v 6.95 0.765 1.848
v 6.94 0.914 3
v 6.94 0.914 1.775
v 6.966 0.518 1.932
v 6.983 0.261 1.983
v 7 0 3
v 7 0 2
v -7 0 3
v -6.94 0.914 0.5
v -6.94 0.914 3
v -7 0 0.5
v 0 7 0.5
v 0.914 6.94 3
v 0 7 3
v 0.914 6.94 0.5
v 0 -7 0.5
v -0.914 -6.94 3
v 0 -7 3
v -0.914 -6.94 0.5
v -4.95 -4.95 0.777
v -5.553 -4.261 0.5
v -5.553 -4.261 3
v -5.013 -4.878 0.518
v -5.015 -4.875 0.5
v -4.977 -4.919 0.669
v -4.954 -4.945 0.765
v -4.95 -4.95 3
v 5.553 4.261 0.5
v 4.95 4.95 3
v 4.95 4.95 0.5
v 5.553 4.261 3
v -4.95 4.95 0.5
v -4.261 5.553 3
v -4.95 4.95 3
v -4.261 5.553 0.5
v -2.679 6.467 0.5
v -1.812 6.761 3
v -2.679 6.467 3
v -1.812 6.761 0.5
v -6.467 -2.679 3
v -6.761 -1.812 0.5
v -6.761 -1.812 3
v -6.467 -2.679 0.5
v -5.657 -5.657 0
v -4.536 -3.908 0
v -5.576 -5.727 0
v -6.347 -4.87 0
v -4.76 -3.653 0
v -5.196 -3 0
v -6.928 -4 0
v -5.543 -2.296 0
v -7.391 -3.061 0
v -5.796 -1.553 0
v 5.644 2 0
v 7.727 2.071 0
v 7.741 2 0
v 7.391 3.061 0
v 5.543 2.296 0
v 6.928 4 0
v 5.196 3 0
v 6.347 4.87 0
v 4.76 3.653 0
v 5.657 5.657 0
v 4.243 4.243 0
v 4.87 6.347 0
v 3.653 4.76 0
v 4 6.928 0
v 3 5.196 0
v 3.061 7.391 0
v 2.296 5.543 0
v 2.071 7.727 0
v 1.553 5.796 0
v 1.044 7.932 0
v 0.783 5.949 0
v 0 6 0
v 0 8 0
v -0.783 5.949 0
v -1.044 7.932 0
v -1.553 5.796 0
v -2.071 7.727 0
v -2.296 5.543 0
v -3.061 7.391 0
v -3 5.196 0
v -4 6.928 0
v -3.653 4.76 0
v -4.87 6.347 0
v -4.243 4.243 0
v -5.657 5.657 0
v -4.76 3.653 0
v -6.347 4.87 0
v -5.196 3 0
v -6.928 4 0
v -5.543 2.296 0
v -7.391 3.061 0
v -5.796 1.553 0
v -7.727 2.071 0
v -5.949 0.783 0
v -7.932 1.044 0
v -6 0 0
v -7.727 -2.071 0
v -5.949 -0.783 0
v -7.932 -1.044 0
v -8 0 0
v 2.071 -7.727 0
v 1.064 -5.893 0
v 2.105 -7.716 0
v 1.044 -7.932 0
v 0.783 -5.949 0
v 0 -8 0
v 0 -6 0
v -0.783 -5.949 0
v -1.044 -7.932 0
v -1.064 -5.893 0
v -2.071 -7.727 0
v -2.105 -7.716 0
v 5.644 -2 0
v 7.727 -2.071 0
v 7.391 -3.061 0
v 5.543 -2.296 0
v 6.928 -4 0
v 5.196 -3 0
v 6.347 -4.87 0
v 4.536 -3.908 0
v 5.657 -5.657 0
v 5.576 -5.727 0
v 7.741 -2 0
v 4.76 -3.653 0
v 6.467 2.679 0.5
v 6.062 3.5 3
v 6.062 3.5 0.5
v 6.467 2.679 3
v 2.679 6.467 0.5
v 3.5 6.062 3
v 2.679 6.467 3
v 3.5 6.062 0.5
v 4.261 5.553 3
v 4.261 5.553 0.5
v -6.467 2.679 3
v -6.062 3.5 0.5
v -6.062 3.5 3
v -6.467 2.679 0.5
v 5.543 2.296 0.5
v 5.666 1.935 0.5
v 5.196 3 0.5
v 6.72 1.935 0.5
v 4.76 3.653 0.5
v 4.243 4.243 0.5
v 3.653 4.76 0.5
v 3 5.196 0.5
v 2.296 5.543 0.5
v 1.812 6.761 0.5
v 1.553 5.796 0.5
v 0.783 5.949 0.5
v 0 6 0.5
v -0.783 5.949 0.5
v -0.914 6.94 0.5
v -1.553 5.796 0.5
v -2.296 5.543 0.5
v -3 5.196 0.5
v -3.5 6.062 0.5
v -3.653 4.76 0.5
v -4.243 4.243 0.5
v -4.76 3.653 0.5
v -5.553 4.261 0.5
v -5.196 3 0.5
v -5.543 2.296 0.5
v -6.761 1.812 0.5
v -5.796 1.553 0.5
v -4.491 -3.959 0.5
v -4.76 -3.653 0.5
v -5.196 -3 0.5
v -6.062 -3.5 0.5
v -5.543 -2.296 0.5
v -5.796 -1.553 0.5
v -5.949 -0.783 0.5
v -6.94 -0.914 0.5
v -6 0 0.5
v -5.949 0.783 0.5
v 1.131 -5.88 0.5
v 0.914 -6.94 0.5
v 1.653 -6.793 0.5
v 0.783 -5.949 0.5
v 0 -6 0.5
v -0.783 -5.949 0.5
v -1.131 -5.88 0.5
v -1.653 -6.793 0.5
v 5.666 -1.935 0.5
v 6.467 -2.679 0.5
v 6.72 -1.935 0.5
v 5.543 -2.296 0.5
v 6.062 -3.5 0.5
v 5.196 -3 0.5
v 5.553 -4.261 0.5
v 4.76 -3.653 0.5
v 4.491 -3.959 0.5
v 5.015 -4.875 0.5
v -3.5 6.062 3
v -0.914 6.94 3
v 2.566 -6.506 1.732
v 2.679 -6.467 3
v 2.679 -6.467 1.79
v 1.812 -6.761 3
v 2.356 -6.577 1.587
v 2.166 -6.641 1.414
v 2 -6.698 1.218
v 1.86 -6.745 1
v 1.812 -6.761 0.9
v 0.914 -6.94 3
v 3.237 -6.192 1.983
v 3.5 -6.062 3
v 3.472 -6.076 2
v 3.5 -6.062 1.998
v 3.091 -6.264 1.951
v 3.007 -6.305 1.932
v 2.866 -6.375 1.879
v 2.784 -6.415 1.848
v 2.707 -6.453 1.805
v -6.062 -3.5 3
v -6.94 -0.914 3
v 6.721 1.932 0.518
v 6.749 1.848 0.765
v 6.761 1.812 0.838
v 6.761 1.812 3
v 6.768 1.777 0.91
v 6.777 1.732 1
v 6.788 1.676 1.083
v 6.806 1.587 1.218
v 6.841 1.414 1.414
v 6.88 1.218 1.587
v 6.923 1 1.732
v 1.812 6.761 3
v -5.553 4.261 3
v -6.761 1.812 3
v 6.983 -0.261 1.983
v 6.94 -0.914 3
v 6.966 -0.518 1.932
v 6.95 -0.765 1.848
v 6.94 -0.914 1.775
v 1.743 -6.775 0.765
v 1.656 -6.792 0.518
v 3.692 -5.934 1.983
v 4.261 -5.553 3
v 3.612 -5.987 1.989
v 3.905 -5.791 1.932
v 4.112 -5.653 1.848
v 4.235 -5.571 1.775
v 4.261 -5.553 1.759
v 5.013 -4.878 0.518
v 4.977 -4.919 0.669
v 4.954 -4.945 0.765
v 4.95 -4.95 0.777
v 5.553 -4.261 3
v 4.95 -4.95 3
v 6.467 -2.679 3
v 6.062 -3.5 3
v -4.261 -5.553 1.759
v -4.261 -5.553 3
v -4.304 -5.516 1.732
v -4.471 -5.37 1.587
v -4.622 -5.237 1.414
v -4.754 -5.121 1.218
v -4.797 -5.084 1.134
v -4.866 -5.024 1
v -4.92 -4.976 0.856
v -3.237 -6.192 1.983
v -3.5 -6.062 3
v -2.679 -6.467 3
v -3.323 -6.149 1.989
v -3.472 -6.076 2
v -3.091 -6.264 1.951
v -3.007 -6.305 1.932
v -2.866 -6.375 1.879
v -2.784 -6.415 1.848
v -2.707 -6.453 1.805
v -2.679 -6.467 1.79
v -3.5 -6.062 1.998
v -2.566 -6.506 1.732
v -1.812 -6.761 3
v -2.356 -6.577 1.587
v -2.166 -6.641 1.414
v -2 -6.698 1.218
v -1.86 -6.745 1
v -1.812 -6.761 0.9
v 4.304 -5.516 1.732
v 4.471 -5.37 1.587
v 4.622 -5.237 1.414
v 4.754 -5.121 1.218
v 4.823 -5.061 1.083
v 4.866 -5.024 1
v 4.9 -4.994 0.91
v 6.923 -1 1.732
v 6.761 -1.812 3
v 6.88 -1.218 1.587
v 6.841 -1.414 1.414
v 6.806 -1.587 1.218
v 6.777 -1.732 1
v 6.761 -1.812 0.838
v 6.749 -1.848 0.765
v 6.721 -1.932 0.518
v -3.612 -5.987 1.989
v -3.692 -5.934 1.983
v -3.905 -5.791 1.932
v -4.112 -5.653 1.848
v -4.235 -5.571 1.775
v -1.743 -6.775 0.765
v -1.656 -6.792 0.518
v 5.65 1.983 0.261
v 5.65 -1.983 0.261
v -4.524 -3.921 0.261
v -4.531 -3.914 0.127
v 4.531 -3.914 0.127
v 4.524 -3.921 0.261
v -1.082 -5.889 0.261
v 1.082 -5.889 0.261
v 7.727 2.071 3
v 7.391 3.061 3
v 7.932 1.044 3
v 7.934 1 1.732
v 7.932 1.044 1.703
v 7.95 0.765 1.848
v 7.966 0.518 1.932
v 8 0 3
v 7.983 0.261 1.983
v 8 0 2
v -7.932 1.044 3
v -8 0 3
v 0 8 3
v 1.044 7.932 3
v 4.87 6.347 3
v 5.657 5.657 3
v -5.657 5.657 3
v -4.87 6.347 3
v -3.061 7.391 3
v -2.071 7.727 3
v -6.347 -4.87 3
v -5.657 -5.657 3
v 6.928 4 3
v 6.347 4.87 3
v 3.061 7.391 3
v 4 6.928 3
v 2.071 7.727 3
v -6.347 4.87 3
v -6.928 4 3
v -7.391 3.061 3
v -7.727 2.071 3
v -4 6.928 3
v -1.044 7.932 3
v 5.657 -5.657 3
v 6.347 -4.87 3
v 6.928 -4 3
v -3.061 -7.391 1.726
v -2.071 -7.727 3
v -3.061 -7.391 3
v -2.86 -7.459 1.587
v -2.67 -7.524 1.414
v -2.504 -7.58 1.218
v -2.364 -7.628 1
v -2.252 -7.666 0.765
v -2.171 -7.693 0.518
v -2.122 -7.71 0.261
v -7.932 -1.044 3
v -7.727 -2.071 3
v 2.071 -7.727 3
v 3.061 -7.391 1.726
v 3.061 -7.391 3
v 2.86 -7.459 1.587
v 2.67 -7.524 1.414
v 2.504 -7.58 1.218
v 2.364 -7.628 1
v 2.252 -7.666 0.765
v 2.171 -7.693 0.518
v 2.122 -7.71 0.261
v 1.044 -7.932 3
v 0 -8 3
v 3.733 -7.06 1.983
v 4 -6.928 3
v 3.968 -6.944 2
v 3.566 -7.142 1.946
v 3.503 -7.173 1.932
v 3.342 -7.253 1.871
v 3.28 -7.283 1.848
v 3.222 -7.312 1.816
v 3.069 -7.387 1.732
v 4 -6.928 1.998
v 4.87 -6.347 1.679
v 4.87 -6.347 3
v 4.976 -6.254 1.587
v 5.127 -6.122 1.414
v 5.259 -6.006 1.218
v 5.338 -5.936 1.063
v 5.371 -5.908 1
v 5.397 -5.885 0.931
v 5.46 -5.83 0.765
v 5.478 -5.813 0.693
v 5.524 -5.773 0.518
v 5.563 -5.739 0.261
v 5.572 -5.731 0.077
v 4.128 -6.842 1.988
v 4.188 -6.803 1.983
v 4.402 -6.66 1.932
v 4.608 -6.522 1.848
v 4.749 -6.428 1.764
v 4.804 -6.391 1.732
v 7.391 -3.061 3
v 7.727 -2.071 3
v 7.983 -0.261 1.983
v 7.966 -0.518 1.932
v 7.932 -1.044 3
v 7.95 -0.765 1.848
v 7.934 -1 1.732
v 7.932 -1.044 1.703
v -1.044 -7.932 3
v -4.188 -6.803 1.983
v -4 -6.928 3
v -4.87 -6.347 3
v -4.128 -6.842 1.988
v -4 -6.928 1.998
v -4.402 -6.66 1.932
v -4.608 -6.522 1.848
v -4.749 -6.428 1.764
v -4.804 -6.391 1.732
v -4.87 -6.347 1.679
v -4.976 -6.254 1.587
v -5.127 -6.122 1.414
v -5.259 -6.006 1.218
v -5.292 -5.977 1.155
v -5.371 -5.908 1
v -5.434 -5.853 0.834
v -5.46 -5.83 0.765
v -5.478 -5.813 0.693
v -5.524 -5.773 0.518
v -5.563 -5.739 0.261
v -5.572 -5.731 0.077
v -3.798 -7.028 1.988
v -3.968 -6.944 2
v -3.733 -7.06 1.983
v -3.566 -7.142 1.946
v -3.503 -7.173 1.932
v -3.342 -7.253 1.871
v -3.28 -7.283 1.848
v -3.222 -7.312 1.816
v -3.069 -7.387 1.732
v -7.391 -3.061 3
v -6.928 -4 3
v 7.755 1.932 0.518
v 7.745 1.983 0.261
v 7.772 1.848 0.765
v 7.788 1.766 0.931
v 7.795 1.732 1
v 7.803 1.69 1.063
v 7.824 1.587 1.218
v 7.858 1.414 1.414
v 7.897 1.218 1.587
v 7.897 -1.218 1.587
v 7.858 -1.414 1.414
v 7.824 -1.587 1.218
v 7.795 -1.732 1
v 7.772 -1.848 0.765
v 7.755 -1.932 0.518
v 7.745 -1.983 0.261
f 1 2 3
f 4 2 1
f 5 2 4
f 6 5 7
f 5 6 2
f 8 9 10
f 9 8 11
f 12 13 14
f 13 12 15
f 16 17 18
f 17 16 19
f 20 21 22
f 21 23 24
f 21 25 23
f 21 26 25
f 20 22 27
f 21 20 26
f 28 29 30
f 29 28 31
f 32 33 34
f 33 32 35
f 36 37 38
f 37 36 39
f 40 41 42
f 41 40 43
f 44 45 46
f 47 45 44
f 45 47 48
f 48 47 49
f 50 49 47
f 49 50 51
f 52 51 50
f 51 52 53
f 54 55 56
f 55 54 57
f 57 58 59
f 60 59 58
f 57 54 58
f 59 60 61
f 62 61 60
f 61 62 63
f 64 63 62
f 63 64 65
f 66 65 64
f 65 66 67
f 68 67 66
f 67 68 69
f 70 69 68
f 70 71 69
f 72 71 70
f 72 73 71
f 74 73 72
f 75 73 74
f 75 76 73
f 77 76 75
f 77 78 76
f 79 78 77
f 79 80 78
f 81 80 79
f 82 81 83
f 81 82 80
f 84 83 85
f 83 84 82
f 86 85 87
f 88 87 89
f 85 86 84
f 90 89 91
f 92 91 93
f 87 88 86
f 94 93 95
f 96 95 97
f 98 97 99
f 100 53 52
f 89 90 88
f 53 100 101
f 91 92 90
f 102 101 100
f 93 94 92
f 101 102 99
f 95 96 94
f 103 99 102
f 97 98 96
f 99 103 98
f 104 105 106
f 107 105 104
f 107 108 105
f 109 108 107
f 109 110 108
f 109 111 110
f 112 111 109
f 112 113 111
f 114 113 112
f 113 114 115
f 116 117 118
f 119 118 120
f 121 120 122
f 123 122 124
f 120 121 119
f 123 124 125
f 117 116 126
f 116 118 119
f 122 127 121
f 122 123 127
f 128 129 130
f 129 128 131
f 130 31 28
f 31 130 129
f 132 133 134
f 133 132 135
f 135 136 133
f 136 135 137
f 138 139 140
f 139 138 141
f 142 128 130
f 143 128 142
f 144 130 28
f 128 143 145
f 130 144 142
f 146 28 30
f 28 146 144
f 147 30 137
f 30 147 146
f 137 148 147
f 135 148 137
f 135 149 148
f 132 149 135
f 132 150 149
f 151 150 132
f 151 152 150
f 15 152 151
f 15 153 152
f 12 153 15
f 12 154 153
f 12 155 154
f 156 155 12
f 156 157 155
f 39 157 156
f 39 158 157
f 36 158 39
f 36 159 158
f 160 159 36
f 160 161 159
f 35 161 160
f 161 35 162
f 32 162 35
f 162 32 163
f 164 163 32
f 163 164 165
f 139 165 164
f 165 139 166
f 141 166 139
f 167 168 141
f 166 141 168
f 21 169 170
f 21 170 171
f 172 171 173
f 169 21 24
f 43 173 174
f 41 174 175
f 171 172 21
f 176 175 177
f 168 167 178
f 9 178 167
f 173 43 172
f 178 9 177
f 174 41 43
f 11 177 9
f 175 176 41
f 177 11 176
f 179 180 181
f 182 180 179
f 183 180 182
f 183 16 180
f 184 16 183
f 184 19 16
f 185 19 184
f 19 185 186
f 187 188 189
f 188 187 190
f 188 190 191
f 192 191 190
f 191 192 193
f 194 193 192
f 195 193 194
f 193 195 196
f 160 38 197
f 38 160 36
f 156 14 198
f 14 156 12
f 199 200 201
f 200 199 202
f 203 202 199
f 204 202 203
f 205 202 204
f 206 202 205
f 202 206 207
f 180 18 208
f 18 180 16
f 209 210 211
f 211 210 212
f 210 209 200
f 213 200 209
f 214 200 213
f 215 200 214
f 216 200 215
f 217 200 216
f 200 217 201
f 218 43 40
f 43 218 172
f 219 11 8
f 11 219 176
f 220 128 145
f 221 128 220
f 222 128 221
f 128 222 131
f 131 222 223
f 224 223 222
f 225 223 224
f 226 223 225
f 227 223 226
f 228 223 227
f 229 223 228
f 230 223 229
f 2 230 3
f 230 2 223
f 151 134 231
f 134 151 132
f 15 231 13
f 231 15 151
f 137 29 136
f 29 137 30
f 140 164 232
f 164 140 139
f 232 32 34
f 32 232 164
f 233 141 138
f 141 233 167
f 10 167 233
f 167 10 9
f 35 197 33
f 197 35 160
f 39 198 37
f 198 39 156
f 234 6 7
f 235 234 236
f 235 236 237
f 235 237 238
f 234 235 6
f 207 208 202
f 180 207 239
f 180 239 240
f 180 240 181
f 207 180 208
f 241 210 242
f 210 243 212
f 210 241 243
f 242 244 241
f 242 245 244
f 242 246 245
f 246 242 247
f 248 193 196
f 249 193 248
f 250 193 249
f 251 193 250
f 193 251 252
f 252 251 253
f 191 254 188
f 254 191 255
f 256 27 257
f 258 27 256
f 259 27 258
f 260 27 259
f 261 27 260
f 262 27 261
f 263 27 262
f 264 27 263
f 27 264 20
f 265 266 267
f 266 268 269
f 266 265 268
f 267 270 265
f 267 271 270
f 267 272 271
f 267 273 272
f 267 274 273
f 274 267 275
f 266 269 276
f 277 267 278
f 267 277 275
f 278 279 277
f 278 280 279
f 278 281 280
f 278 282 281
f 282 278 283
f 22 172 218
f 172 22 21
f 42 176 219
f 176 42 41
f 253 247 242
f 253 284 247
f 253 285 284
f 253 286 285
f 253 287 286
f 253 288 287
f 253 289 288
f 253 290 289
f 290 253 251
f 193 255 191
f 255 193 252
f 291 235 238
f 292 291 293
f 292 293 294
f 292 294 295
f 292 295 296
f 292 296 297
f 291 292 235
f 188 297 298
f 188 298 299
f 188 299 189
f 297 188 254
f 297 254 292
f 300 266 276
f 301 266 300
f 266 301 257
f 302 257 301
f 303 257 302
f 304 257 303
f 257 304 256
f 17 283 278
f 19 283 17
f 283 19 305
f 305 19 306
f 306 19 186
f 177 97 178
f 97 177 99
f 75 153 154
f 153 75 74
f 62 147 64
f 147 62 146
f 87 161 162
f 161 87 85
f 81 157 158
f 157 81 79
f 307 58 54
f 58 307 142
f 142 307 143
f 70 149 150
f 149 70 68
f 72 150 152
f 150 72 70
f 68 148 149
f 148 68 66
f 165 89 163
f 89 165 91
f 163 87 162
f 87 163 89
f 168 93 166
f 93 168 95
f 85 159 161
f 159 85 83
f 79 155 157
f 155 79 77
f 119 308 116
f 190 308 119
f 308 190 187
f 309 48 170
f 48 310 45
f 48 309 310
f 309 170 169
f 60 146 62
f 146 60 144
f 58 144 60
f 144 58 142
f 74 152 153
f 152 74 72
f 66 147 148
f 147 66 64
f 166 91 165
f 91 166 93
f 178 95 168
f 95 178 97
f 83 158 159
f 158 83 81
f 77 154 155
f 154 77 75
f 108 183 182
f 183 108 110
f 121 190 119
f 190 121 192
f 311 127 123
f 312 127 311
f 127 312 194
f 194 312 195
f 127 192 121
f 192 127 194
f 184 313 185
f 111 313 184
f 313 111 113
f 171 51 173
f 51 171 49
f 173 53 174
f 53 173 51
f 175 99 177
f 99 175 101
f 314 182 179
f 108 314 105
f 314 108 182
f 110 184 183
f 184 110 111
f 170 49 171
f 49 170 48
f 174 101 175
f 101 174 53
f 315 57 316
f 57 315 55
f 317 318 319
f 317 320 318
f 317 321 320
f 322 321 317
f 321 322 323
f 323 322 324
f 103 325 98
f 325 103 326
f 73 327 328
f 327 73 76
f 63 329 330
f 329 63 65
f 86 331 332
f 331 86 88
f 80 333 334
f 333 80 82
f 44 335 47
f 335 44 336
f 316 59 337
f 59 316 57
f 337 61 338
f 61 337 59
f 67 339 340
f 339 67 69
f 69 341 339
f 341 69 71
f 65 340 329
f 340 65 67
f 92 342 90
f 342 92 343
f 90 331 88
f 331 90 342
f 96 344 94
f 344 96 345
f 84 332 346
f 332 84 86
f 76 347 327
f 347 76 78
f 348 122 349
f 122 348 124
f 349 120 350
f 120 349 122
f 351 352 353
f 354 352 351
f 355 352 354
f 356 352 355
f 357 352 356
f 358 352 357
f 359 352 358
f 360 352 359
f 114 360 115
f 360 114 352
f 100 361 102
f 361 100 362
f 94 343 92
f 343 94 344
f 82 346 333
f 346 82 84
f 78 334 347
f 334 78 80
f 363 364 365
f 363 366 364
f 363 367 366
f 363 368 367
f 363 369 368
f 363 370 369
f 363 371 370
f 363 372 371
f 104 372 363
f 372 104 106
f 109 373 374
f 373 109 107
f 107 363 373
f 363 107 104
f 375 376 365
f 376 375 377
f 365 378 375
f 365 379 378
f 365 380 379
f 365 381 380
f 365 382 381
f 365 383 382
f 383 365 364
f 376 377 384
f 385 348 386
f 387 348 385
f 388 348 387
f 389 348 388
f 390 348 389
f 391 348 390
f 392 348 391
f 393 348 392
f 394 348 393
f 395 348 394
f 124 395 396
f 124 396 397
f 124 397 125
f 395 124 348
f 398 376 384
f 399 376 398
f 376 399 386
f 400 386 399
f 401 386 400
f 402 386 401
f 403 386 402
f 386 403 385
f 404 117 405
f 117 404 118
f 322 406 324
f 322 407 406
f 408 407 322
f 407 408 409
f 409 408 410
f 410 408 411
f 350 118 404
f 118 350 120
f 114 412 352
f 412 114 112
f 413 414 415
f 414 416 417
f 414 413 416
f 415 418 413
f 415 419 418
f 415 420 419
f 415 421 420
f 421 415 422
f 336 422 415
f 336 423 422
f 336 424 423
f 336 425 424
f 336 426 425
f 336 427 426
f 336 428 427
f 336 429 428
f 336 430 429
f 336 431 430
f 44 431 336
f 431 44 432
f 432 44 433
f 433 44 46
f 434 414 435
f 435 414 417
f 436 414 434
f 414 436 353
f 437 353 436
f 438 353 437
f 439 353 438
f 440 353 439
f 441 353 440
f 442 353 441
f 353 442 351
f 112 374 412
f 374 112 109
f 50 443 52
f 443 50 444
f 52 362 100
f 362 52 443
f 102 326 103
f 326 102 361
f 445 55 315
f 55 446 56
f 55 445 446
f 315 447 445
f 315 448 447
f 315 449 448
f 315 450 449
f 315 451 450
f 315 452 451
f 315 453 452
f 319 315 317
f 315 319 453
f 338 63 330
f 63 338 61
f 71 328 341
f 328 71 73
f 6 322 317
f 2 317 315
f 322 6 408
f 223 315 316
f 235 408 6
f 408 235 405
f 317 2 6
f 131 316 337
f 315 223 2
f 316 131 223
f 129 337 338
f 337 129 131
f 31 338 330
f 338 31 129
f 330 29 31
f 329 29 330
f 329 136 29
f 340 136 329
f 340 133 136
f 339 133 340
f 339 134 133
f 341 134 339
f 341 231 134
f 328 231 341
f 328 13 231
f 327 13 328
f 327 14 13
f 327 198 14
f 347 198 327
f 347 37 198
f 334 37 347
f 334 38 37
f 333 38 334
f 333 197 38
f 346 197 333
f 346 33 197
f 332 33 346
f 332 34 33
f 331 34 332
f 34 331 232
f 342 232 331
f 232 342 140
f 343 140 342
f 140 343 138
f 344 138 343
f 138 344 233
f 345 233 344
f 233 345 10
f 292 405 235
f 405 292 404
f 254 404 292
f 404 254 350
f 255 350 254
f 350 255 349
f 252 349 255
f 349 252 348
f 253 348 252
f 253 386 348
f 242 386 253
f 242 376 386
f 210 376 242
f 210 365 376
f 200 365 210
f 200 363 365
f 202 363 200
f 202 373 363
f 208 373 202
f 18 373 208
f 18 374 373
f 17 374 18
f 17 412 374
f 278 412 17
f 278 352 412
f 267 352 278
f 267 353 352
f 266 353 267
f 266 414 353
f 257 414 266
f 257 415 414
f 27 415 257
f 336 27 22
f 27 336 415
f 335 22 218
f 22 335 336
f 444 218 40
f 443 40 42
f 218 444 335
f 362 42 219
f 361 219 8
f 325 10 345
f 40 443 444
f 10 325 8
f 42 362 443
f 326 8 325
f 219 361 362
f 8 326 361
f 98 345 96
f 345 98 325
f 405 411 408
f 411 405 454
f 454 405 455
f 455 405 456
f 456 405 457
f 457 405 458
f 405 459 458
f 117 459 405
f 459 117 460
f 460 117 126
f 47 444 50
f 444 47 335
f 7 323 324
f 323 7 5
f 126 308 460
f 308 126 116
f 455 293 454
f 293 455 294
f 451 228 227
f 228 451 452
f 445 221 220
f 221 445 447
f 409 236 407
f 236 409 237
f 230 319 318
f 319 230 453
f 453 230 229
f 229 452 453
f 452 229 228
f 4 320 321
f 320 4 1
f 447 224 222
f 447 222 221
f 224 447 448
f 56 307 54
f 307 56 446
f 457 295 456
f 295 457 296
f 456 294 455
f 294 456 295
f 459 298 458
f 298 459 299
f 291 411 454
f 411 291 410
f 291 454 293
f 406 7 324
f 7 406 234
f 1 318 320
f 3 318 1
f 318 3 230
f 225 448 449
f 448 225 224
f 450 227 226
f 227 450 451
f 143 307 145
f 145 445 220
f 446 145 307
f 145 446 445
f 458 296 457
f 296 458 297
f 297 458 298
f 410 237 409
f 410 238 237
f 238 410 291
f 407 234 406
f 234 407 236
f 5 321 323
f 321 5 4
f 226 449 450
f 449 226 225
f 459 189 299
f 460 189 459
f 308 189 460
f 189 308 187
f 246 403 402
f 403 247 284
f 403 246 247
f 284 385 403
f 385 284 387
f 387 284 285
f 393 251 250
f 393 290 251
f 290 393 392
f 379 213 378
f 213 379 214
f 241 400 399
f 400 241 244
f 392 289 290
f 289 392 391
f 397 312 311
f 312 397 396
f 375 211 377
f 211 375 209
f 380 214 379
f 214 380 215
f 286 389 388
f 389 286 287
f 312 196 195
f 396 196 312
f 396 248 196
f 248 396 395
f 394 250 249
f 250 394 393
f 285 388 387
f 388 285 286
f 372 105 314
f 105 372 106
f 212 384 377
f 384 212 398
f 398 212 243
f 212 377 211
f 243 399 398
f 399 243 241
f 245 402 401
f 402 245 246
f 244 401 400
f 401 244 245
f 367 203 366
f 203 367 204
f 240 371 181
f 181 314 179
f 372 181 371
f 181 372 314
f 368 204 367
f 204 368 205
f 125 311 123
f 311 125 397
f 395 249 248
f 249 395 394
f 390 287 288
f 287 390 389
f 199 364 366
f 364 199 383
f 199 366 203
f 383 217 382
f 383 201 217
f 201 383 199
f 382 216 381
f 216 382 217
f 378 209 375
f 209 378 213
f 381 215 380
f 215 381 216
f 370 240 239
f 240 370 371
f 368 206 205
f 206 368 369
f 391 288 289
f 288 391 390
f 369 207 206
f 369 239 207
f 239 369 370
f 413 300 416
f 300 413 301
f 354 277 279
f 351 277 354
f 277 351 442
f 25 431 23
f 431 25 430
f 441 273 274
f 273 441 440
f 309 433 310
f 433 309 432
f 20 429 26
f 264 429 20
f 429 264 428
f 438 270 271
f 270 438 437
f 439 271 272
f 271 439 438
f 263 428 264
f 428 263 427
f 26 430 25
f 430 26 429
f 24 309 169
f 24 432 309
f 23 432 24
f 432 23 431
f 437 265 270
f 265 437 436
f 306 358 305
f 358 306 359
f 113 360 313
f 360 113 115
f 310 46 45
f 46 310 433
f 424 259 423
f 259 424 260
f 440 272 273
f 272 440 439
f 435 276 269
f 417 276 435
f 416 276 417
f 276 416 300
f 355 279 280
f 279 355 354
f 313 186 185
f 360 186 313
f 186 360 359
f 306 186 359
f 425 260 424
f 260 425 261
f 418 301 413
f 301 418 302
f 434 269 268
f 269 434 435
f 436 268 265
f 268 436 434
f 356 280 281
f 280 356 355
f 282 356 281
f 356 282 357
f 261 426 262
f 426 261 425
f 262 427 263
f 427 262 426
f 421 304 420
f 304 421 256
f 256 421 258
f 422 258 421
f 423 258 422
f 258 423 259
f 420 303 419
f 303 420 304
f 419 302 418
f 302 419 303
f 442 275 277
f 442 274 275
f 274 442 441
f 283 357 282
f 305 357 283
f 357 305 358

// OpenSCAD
// file: ../build_environments.scad
// build_environments.scad: modules to build level sections
//

module pool(diameter=10.0, wall_height=2.0, step_width=3.0, connections=[])
{
    difference() {
        union() {
        difference() {
            cylinder(h=0.5,r1=diameter+step_width,r2=diameter+step_width,$fn=48);
            translate([0,0,-0.1])
                cylinder(h=0.7,r1=diameter,r2=diameter,$fn=48);
        }
        difference() {
            cylinder(h=wall_height,r1=diameter+step_width+1.0,r2=diameter+step_width+1.0,$fn=48);
            translate([0,0,-0.1])
                cylinder(h=wall_height+0.2,r1=diameter+step_width,r2=diameter+step_width,$fn=48);
        }
        }
    
        for (c = connections)
        {
            rotate([0,90,0]) {
                angle = atan2(c[1],c[0]);
                rotate([-angle,0,0]) {
                    cylinder(h=diameter+5.0,r1=c[2],r2=c[2],$fn=48);
                }
            }
        }
    }
}

module straight(length=10.0, width=2.0, dy1=0.0, dy2=0.0, dz=0.0)
{
    dims = [0, 0, 0, 0, 0, (dz/length)];
    matrix = [
        [ 1, dims[0], dims[1], 0 ],
        [ dims[2], 1, dims[4], 0 ],
        [ dims[5], dims[3], 1, 0 ],
        [ 0, 0, 0, 1 ]
    ];
    multmatrix(matrix)
    difference() {
        translate([dy1,0,0])
        union() {
            rotate([0,90,0]) {
                difference() {
                    cylinder(h=(length-dy1-dy2),r1=width+1.0,r2=width+1.0,$fn=24);
                    translate([0,0,-0.1])
                        cylinder(h=(length-dy1-dy2+0.2),r1=width,r2=width,$fn=24);
                }
                difference() {
                    cylinder(h=1.0,r1=width+2.0,r2=width+2.0,$fn=24);
                    translate([0,0,-0.1])
                        cylinder(h=1.2,r1=width,r2=width,$fn=24);
                }
                translate([0,0,(length-dy1-dy2)-1.0]) {
                    difference() {
                        cylinder(h=1.0,r1=width+2.0,r2=width+2.0,$fn=24);
                        translate([0,0,-0.1])
                            cylinder(h=1.2,r1=width,r2=width,$fn=24);
                    }
                }
            }
        }
        translate([0,0,-(2*width+4.0)/2])
            cube([3*length,3*length,2*width+4.0],center=true);
    }
}

module curve(p0=[0,0], center=[0,0], dir=1, angle=0.0, width=2.0)
{
    radius = sqrt((p0[0]-center[0])*(p0[0]-center[0]) + (p0[1]-center[1])*(p0[1]-center[1]));
    if (dir == 0) {
        difference() {
            rotate([0,0,-90])
            difference() {
                rotate_extrude(angle = angle, convexity = 10, $fn=32)
                    translate([radius, 0, 0])
                        circle(r = width+1.0,$fn=24);
                rotate([0,0,-1.0])
                    rotate_extrude(angle = angle+2.0, convexity = 10, $fn=32)
                        translate([radius, 0, 0])
                            circle(r = width,$fn=24);
            }
            translate([0,0,-(2*width+4.0)/2])
                cube([5*radius,5*radius,2*width+4.0],center=true);
        }
    }
    else {
        difference() {
            rotate([0,0,90])
            difference() {
                rotate_extrude(angle = -angle, convexity = 10, $fn=32)
                    translate([radius, 0, 0])
                        circle(r = width+1.0,$fn=24);
                rotate([0,0,1.0])
                    rotate_extrude(angle = -angle-2.0, convexity = 10, $fn=32)
                        translate([radius, 0, 0])
                            circle(r = width,$fn=24);
            }
            translate([0,0,-(2*width+4.0)/2])
                cube([5*radius,5*radius,2*width+4.0],center=true);
        }
    }

}

// test pool
//pool(diameter=12.0000, wall_height=3.0000, step_width=3.0000, connections=[[0.0000,-26.0000,2.0000], [23.6074,0.0000,2.0000]]);

// test straight, slope
//straight(length=26.0000, width=2.0000, dy1=11.8322, dy2=6.7082, dz=0.0000);
//straight(length=29.1549, width=12.0000, dy1=0.0000, dy2=0.0000, dz=-15.0000);

// test curve
//curve(p0=[23.6074, 0.0000], center=[23.6074, 5.0000], dir=0, angle=60.1011, width=2.0000);
//curve(p0=[33.6426, 12.4219], center=[37.9771, 9.9295], dir=1, angle=120.4627, width=2.0000);
// main file
use <../build_environments.scad>;
pool(diameter=6.0000, wall_height=3.0000, step_width=1.0000, connections=[[16.0000,0.0000,2.0000], [8.0000,-14.0000,2.0000], [-8.0000,-14.0000,2.0000]]);
